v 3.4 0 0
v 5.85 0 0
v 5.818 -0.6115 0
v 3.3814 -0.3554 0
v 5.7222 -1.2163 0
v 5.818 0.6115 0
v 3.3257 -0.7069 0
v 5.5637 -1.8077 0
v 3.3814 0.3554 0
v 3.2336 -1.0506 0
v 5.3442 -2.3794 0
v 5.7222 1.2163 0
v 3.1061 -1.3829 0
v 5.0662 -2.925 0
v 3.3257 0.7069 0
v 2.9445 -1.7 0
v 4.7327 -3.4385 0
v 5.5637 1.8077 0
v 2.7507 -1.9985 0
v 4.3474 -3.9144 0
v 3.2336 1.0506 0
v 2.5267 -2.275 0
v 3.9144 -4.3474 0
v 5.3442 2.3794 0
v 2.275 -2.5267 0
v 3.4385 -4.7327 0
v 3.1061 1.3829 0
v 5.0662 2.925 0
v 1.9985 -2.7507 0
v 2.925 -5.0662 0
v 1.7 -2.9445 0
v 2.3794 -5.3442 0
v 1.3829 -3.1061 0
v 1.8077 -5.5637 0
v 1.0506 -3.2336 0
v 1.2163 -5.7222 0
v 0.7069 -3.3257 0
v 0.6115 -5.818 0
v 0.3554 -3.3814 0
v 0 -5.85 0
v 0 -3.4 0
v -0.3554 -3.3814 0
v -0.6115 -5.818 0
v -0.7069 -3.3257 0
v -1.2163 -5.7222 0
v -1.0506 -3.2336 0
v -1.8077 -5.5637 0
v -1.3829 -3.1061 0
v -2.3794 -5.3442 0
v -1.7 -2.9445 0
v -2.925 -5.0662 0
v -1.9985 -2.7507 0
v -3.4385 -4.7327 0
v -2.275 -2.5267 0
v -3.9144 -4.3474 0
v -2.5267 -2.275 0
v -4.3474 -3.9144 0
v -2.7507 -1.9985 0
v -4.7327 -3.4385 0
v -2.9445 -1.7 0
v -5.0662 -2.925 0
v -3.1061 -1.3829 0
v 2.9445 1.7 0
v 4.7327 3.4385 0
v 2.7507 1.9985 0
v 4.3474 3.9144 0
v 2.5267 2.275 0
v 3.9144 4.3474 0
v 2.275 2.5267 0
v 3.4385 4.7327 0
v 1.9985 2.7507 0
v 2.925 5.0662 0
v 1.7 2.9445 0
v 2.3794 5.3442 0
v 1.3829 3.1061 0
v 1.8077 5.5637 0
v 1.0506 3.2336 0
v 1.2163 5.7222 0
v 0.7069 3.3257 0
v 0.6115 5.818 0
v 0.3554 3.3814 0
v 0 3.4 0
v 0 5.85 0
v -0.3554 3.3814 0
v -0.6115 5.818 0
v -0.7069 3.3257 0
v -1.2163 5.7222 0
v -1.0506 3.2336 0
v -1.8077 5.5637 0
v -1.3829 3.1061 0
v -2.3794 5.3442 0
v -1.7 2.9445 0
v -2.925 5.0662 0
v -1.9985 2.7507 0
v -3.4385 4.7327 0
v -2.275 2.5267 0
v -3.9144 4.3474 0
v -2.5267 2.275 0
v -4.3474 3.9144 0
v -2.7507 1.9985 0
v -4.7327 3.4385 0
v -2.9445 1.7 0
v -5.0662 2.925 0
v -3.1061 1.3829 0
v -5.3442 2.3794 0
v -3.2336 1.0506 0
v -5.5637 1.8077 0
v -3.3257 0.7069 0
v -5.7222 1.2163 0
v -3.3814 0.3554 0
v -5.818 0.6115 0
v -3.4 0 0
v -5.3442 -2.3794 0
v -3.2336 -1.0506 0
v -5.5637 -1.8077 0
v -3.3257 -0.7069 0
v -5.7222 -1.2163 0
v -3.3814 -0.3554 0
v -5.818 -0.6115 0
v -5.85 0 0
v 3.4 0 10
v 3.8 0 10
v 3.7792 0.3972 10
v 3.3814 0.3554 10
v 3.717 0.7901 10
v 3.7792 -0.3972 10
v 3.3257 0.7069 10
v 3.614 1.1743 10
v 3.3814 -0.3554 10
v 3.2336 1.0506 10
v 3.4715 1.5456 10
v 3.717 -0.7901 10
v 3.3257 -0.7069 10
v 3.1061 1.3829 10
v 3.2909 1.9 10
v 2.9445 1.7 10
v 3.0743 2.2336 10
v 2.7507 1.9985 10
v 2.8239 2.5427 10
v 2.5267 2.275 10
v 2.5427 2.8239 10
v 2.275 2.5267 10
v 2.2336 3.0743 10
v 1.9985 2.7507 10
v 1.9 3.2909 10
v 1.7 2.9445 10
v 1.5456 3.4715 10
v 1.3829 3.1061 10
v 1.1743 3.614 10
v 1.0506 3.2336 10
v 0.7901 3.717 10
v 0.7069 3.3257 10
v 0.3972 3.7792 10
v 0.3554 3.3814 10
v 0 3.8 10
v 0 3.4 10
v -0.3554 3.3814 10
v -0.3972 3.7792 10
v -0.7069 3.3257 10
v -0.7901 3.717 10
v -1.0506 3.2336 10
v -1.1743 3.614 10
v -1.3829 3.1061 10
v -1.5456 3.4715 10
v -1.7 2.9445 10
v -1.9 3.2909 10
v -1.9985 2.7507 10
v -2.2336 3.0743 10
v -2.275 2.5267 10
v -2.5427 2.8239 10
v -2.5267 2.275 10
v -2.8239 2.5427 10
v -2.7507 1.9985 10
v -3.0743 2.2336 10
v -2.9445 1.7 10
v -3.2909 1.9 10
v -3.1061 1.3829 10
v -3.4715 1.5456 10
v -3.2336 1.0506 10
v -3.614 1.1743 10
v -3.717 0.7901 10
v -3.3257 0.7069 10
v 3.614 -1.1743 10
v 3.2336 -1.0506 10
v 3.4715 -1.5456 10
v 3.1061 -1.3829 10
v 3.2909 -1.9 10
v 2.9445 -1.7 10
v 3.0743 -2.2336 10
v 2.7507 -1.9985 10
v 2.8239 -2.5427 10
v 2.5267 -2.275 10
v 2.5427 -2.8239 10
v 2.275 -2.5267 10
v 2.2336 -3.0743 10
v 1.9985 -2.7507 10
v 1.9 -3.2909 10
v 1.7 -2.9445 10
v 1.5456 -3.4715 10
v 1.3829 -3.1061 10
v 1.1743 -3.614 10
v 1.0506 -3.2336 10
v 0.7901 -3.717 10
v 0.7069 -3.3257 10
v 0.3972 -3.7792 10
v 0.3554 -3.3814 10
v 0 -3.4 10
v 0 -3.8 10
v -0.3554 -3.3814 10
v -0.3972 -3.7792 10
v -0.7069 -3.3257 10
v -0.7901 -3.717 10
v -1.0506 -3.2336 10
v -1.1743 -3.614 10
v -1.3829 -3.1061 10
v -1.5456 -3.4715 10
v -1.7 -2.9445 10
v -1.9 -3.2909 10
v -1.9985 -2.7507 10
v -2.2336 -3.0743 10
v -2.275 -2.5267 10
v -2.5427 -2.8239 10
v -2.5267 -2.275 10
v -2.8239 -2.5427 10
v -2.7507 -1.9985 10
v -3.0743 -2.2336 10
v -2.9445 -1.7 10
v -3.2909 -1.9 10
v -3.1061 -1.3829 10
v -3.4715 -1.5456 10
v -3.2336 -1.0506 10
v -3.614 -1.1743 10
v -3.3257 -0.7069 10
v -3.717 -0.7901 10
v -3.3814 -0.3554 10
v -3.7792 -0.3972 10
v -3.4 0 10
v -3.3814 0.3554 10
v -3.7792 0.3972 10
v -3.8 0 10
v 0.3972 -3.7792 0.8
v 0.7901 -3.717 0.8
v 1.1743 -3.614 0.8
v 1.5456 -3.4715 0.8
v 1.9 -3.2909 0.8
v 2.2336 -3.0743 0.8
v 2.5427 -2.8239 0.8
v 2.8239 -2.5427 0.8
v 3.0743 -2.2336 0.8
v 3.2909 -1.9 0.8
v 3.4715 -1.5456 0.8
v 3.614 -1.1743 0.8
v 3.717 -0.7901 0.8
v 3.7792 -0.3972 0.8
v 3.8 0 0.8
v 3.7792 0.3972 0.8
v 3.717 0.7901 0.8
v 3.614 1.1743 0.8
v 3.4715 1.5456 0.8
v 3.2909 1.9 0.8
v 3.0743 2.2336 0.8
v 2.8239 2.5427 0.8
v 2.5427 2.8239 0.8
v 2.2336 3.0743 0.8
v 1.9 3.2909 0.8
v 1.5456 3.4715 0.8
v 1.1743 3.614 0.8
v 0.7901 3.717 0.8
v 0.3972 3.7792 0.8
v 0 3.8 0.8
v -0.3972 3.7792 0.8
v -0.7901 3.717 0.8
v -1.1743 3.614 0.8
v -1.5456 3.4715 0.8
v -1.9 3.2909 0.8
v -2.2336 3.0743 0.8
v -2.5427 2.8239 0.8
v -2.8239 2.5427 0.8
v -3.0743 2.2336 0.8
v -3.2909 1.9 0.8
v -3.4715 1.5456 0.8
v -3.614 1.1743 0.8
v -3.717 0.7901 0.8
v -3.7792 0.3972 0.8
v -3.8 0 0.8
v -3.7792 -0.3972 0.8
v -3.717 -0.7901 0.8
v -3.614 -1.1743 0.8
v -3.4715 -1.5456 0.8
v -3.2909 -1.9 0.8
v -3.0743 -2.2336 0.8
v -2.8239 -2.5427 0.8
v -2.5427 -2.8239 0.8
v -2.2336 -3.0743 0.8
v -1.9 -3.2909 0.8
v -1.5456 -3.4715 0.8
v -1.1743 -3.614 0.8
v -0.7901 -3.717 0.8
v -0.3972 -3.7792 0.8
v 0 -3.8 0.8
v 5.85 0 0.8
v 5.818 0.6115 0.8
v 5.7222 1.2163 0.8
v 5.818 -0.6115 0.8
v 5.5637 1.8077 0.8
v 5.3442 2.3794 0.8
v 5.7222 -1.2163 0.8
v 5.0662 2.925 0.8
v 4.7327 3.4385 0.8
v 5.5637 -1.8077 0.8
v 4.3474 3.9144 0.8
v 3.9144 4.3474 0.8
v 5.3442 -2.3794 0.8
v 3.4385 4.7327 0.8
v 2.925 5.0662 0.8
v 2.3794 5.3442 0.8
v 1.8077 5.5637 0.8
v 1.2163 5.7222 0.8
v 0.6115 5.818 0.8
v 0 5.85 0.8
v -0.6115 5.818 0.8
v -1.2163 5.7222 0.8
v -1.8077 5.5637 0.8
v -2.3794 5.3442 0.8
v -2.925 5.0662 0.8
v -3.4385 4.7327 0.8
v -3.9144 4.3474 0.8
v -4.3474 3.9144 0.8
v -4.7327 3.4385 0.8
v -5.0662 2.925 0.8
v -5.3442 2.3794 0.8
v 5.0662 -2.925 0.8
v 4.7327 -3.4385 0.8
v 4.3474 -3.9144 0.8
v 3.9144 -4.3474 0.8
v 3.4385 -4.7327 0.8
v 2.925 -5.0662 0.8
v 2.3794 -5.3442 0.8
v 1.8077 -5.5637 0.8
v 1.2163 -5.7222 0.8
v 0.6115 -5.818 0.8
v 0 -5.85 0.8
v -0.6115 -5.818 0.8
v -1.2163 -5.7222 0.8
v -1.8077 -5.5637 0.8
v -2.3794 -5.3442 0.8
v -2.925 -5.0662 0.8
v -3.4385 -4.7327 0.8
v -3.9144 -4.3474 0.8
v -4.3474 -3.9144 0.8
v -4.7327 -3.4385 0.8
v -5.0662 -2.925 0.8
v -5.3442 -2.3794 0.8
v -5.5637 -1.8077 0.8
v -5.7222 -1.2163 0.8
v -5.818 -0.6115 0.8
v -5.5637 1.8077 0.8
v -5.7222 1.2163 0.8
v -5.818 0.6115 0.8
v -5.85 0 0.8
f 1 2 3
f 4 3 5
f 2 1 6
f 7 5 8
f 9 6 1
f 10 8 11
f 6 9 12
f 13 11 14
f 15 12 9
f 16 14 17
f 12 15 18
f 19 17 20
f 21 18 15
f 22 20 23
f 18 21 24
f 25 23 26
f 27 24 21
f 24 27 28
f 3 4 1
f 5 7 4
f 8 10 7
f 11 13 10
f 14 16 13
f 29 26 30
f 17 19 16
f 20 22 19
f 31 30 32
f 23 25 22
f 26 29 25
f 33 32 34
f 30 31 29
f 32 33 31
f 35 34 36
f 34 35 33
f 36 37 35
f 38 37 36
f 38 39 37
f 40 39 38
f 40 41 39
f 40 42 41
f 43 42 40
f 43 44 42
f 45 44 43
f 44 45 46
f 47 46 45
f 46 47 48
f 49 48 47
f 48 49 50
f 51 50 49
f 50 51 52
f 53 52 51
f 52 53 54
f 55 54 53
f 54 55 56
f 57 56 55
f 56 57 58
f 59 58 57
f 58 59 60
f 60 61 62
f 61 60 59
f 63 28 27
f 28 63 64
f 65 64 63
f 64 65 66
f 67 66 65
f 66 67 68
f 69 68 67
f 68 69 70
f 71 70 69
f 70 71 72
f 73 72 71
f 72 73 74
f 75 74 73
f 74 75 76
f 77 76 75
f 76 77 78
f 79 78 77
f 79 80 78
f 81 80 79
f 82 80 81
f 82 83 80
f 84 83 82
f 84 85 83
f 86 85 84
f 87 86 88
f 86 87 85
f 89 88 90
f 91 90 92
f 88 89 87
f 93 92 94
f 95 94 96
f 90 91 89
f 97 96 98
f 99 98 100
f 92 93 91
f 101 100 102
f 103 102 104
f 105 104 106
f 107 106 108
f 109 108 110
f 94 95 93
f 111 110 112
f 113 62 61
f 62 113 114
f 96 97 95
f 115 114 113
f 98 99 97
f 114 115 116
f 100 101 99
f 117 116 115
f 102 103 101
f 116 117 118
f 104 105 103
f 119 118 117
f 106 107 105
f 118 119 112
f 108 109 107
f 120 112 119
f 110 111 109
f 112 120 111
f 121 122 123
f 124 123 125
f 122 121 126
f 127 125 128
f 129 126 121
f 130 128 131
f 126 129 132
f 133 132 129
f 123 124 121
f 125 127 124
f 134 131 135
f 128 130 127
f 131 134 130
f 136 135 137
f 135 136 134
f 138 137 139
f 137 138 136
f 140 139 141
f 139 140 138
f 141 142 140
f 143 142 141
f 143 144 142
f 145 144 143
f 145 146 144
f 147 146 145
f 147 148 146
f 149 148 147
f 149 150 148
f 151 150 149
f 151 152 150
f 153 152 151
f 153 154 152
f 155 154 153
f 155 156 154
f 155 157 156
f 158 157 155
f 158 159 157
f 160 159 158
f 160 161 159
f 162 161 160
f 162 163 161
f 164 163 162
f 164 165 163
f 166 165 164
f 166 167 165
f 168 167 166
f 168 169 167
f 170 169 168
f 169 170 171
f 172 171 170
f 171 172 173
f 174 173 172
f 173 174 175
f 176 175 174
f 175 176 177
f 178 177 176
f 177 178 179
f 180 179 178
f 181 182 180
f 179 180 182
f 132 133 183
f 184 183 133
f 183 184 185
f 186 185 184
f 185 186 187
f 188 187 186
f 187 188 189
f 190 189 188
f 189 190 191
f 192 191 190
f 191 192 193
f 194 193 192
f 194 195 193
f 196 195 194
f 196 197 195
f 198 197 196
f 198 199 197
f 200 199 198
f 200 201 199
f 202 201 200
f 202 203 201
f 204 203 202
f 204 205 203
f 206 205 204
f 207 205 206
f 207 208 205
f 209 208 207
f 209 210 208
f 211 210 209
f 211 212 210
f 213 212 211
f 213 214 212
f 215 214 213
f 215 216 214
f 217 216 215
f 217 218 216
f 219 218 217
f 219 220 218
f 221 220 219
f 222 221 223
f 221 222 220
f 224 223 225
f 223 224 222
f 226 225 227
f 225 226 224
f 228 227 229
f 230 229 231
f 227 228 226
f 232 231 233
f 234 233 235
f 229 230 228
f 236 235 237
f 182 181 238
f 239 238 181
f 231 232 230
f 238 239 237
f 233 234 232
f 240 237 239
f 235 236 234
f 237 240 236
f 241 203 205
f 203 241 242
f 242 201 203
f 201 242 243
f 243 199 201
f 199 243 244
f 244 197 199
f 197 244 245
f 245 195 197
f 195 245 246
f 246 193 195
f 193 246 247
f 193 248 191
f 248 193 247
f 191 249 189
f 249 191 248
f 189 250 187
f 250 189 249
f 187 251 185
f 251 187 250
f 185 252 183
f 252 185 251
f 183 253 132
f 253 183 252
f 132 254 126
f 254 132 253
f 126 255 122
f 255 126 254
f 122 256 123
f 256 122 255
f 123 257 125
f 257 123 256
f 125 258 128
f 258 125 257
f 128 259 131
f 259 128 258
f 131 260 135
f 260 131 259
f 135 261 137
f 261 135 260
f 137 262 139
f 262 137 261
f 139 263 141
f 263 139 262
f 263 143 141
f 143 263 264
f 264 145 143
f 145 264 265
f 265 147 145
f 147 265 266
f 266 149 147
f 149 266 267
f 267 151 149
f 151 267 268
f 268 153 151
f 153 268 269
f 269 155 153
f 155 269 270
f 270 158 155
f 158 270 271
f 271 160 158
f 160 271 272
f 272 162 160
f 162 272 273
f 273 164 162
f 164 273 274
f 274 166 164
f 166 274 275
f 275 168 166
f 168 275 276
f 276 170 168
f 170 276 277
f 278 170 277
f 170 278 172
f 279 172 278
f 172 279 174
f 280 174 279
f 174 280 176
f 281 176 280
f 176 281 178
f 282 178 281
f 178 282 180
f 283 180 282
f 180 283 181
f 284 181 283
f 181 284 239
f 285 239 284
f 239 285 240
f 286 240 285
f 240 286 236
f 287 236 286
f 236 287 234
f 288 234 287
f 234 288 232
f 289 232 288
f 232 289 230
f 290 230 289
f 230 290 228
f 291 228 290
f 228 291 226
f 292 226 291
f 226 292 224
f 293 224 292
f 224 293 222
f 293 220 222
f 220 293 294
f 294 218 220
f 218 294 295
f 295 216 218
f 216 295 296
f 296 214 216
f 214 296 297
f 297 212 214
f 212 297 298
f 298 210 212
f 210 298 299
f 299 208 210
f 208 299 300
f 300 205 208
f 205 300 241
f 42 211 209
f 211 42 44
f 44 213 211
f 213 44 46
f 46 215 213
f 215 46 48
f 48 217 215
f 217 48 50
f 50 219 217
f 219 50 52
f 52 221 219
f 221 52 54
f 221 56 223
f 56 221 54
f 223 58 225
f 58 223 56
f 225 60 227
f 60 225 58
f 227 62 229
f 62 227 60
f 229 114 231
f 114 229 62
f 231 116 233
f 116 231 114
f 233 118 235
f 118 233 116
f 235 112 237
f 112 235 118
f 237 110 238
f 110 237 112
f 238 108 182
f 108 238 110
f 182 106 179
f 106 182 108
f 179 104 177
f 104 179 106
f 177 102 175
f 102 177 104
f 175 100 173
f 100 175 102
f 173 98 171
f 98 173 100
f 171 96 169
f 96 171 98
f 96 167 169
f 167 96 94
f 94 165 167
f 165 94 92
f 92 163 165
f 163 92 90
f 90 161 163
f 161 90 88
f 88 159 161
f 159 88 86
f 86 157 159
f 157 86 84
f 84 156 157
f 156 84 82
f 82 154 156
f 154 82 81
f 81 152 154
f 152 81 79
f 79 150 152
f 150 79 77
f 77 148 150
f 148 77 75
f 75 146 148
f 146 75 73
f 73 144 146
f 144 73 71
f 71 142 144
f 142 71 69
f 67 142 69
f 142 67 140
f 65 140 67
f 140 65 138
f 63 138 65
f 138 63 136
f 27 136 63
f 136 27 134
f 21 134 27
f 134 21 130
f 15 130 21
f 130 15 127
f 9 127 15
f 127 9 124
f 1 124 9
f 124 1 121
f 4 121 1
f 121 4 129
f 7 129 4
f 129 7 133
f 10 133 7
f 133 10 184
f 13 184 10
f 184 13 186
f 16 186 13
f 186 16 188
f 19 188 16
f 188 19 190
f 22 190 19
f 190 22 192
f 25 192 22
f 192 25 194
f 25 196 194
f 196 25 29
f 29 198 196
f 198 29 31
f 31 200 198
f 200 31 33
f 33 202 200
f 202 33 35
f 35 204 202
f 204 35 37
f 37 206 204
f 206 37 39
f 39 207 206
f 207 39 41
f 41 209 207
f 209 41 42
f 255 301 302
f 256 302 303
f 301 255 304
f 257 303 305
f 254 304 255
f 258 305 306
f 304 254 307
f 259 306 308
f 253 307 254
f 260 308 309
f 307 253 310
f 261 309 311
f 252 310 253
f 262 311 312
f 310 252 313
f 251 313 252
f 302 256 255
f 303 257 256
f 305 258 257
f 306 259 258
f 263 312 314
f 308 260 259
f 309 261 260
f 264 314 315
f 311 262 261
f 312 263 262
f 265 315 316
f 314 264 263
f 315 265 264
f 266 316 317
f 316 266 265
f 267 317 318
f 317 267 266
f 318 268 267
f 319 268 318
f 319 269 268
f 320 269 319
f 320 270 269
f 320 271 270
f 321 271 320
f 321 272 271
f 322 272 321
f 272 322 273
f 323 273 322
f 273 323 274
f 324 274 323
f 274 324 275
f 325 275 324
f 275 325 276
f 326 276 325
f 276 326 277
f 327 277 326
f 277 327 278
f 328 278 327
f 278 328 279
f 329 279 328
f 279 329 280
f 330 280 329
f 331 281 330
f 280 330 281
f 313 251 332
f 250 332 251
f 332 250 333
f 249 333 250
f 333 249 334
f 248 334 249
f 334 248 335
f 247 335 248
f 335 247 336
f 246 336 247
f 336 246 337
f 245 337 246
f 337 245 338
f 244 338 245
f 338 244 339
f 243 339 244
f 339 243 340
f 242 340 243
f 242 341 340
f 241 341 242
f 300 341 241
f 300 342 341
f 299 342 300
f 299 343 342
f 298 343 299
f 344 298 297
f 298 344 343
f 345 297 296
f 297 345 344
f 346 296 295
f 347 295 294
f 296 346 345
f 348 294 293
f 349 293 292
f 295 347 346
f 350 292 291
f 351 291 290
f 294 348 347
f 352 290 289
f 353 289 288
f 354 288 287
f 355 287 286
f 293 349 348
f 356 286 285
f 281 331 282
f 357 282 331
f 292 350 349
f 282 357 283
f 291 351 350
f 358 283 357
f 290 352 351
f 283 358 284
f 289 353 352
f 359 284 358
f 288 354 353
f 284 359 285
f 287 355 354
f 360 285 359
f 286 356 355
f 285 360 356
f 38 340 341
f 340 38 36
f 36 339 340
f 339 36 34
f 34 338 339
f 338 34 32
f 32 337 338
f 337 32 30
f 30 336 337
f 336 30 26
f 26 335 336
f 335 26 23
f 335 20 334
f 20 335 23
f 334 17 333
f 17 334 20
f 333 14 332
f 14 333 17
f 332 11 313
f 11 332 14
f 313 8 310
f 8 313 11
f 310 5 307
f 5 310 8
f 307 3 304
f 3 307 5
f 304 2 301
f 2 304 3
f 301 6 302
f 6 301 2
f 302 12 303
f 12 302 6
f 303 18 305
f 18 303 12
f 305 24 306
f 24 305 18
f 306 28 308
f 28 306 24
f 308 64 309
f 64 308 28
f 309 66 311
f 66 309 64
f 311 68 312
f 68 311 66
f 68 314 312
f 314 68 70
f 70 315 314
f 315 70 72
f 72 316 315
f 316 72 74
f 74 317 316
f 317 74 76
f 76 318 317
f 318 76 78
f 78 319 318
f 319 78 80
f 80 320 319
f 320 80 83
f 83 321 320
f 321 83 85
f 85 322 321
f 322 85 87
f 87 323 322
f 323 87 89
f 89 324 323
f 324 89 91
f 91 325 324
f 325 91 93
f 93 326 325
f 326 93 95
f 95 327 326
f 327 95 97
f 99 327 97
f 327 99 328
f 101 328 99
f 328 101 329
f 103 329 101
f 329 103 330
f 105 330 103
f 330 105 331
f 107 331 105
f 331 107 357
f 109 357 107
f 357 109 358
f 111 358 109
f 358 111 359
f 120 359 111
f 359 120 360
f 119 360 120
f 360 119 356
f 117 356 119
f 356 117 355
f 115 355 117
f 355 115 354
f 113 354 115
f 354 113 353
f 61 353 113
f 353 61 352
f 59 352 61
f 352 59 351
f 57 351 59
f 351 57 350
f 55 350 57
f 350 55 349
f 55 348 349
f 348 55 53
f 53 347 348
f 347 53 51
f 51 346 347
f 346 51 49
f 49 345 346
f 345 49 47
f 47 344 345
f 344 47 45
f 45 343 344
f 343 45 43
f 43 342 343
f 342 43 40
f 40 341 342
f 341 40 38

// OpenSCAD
// Work with https://www.thingiverse.com/thing:5220231/files
$fn=60;

linear_extrude(height=10)
difference() {
    circle(d=7.6);
    circle(d=6.8);
}

linear_extrude(height=0.8)
difference() {
    circle(d=11.7);
    circle(d=7);
}
